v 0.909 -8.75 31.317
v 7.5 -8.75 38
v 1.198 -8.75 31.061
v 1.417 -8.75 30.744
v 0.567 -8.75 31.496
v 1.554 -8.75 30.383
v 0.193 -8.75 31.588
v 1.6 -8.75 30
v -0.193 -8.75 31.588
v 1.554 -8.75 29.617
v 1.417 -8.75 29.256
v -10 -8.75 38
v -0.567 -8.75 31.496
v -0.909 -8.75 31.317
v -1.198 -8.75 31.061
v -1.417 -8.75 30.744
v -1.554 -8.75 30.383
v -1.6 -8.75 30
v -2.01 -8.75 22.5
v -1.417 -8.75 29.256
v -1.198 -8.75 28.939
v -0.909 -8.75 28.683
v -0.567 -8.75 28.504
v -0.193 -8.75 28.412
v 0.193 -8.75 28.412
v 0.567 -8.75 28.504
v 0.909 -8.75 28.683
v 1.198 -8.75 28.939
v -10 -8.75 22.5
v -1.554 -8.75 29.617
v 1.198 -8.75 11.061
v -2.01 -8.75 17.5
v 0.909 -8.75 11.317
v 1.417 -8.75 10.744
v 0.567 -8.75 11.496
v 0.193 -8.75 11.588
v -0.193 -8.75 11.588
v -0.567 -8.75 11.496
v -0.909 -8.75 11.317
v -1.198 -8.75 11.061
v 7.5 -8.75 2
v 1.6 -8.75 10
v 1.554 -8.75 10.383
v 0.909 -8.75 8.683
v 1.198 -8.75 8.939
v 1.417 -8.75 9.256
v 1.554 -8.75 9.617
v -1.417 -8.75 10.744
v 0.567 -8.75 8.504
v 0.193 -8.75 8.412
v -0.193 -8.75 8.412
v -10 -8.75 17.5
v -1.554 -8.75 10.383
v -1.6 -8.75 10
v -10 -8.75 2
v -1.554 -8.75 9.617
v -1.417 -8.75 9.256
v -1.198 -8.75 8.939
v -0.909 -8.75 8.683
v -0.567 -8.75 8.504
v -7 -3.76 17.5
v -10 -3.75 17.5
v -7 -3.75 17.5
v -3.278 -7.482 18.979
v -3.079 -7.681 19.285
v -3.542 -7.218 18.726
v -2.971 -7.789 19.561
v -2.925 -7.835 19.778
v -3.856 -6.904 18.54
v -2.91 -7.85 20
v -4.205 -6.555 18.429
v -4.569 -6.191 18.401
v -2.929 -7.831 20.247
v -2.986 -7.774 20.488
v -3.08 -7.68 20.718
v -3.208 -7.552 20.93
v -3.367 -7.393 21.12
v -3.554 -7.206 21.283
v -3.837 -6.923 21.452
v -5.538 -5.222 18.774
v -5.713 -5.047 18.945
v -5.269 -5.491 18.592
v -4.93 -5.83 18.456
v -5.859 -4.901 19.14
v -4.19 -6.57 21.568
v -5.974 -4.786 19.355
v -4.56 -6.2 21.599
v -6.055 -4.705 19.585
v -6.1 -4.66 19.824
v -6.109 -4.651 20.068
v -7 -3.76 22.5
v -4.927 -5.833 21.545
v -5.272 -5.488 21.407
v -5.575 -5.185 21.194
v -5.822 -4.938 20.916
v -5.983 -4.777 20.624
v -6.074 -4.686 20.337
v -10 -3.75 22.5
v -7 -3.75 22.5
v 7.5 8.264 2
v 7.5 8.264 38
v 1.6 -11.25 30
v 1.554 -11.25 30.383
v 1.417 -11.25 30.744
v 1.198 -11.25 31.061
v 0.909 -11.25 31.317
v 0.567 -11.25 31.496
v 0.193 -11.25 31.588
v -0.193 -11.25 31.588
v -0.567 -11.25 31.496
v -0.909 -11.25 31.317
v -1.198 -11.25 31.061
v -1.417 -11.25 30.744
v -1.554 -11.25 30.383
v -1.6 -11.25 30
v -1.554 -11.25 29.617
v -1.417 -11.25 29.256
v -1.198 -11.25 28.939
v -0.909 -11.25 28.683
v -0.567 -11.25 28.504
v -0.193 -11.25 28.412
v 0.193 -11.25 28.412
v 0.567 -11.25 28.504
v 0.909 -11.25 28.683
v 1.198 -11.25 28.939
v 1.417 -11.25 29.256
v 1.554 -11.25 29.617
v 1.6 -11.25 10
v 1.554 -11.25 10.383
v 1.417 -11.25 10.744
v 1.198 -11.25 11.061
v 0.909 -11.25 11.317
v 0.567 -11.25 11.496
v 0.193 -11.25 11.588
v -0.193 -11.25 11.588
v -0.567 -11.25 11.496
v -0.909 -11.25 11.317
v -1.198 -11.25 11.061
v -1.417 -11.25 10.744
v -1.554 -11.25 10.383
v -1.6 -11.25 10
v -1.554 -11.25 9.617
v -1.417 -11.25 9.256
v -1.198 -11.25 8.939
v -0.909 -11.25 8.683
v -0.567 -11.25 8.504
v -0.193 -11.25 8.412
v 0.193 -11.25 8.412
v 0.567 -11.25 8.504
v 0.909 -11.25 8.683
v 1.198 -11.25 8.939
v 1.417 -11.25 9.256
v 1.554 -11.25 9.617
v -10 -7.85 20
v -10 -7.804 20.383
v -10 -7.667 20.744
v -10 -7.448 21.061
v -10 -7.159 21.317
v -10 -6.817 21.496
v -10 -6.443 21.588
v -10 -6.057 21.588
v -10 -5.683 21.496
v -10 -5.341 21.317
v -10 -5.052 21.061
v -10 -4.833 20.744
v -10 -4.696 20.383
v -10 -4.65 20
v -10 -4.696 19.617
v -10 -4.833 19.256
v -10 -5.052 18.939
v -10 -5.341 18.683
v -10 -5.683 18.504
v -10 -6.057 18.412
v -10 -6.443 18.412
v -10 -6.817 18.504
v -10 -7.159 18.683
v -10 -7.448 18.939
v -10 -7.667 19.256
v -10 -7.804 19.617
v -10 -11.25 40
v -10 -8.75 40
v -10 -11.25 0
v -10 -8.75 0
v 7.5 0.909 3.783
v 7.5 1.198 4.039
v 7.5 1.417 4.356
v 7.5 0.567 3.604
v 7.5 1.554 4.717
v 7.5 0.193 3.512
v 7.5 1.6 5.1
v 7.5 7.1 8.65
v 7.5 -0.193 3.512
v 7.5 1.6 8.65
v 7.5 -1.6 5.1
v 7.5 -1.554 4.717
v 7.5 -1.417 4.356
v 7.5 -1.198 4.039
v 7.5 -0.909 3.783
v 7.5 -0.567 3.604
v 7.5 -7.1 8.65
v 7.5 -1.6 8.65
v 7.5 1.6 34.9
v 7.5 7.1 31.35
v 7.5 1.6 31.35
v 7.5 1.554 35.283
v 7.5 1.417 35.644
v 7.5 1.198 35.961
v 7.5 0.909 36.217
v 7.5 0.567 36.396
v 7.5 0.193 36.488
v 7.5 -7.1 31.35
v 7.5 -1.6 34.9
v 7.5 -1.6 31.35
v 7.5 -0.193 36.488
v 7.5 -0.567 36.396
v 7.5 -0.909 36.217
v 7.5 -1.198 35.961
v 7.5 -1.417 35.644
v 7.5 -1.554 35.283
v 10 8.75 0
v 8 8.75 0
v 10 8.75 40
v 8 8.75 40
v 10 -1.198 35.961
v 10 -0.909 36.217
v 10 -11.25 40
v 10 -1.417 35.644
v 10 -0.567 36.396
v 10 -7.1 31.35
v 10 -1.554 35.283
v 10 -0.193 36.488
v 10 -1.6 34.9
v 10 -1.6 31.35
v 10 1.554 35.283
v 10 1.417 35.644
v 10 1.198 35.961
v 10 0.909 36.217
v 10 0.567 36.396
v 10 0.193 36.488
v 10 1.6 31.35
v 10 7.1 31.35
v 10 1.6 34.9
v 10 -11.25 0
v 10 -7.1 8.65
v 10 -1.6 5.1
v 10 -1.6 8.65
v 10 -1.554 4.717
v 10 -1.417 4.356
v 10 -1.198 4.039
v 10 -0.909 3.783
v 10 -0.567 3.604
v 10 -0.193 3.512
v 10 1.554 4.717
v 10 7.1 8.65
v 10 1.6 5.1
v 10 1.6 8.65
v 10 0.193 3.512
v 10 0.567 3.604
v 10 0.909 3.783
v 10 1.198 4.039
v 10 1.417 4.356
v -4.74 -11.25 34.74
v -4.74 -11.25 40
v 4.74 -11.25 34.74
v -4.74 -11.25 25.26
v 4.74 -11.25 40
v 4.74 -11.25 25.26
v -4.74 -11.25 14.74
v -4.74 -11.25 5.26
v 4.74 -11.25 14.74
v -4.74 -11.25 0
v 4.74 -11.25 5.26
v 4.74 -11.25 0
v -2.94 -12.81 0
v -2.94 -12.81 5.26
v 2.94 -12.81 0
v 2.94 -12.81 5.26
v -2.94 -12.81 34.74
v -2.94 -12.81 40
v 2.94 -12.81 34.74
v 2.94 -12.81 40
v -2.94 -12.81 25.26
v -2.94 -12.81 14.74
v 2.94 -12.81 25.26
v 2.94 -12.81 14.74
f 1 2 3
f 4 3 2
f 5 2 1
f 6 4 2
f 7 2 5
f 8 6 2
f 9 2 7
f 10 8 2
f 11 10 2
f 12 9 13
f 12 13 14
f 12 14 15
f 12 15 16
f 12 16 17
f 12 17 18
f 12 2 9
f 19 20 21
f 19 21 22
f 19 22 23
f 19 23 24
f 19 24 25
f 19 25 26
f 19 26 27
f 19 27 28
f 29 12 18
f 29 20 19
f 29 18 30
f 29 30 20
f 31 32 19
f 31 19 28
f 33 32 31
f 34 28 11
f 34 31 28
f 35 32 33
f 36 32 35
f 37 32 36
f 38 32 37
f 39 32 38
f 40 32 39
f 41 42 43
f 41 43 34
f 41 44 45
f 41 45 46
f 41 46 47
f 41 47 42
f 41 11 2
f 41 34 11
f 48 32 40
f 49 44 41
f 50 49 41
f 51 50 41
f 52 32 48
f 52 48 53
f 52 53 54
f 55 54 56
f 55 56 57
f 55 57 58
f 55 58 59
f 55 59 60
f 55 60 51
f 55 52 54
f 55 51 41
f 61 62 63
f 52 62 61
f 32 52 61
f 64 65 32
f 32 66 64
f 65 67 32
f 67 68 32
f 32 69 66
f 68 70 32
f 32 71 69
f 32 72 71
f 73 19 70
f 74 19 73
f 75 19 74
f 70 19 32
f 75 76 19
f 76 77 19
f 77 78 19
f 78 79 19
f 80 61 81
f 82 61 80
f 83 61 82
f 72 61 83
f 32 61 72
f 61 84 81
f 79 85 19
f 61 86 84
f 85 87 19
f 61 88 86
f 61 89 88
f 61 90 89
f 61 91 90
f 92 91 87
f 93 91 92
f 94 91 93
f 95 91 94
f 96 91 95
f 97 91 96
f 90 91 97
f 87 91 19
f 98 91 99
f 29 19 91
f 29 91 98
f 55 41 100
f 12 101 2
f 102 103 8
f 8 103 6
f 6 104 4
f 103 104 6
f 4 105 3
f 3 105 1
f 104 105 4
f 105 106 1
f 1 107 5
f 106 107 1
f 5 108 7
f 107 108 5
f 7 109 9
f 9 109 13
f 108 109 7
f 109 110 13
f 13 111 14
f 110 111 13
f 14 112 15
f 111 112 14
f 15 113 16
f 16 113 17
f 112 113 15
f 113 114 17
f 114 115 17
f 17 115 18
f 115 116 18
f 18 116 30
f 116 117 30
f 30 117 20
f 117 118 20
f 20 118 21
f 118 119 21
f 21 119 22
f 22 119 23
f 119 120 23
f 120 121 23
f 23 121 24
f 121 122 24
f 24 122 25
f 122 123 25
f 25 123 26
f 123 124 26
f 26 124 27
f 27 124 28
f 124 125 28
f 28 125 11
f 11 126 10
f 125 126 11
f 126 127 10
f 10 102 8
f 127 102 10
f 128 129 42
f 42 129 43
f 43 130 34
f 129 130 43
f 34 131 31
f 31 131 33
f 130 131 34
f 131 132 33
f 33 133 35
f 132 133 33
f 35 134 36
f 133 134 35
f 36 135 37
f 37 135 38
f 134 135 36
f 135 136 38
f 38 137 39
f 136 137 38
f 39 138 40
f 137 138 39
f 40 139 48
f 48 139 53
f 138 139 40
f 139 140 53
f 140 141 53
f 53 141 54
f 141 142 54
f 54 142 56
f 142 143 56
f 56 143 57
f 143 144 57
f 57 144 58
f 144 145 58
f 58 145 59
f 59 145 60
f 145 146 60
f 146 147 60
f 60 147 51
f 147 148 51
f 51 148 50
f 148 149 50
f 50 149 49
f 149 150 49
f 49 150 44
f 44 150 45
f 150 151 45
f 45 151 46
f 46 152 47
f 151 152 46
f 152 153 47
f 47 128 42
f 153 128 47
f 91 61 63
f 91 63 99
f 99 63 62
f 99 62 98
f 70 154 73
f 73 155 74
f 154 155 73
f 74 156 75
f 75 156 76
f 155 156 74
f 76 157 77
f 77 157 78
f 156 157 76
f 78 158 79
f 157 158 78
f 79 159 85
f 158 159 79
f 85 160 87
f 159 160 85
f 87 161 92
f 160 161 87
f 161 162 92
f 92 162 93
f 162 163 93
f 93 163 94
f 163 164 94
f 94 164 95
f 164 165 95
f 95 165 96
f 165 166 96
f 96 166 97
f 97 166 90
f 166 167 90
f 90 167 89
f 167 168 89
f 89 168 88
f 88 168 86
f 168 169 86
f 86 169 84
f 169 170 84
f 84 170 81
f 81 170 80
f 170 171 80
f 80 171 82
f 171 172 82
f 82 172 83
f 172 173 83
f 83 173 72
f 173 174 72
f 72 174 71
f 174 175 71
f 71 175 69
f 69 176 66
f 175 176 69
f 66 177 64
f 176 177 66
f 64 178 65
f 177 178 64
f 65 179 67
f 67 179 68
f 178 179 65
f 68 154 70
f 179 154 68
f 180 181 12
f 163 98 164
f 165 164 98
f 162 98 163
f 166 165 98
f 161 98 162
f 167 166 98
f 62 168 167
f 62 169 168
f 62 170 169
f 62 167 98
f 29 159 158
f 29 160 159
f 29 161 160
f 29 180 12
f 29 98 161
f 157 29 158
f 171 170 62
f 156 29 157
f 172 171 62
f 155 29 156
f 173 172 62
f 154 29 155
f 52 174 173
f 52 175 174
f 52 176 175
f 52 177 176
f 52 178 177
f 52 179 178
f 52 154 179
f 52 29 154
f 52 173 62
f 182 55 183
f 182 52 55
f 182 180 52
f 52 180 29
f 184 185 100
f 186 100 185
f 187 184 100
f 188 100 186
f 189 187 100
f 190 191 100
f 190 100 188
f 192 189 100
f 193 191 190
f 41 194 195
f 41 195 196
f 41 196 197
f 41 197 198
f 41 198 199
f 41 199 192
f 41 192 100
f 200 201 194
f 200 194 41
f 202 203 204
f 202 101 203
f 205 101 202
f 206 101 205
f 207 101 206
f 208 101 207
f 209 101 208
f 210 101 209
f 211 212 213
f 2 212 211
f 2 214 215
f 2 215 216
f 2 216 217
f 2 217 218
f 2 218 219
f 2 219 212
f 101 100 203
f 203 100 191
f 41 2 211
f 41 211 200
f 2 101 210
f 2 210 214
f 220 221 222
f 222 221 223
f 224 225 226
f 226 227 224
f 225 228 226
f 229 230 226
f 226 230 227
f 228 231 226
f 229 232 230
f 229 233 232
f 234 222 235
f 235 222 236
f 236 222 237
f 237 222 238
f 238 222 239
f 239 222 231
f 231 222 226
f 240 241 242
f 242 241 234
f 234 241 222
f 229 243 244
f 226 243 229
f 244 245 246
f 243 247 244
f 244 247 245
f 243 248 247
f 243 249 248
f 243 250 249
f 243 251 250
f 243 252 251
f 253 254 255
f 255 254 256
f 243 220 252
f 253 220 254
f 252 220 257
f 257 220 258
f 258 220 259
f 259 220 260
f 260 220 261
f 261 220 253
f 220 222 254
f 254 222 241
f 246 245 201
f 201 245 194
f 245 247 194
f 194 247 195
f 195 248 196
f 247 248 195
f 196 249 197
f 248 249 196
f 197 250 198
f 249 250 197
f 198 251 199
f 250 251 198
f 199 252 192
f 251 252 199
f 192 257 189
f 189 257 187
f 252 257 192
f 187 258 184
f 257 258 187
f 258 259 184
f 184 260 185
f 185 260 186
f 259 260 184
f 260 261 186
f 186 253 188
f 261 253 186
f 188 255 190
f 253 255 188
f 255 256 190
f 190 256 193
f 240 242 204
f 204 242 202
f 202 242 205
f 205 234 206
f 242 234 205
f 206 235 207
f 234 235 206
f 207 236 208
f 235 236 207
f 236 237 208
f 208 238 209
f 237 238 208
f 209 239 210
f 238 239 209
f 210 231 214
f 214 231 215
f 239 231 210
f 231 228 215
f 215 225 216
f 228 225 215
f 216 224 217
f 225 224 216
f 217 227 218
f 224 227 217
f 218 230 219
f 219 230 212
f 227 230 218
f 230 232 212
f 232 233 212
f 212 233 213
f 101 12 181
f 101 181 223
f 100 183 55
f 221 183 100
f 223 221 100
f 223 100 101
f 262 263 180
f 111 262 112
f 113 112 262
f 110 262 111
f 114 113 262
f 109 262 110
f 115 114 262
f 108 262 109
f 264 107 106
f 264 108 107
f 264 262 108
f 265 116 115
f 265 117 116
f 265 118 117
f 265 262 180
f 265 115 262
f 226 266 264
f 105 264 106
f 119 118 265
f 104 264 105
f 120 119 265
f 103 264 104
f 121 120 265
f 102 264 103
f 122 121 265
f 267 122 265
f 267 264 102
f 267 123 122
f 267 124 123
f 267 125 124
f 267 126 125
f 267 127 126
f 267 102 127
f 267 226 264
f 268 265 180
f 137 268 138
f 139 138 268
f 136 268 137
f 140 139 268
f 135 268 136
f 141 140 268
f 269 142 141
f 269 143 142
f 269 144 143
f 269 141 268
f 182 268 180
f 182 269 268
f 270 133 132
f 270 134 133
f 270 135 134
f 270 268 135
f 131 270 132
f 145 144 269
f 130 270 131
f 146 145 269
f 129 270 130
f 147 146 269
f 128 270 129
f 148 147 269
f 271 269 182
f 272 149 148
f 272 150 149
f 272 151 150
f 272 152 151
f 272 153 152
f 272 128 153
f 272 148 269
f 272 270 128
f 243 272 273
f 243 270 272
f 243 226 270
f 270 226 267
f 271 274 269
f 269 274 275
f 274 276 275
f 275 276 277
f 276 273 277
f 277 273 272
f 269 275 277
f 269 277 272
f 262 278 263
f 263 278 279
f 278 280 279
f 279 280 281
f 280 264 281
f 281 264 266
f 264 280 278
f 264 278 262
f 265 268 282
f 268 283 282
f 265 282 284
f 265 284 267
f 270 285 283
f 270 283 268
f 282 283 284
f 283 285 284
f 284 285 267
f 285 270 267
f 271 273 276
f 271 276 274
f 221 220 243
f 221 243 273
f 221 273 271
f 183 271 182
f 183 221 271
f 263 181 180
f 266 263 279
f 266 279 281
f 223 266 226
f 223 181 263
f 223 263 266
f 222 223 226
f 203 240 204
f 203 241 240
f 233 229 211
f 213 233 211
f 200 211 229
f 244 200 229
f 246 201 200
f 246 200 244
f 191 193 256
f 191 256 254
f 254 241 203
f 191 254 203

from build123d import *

# Parameters (mm, degrees)
PAD_DEPTH            = 40
PAD001_DEPTH         = 40
SKETCH002_W          = 17.5
SKETCH002_H          = 36
POCKET_DEPTH         = 18
SKETCH003_W          = 14.2
SKETCH003_H          = 22.7
POCKET001_DEPTH      = 2.001
SKETCH004_R          = 1.6
POCKET002_DEPTH      = 21.561
SKETCH005_W          = 9.48
SKETCH005_H          = 9.48
POCKET003_DEPTH      = 1.56
POCKET003_FACE12_W   = 17.5
POCKET003_FACE12_H   = 36
POCKET003_FACE12_W_2 = 14.2
POCKET003_FACE12_H_2 = 22.7
PAD002_DEPTH         = 0.5
POCKET004_DEPTH      = 38.001
POCKET005_DEPTH      = 2.5
SKETCH007_W          = 3
SKETCH007_H          = 5
PAD003_DEPTH         = 5
CHAMFER_SIZE         = 4.99
SKETCH008_R          = 1.6
POCKET006_DEPTH      = 17.5


with BuildPart() as part:
    # Sketch → Pad (new body)
    with BuildSketch(Plane.XY):
        Polygon((-10, -8.75), (-10, -11.25), (-4.74, -11.25), (-2.94, -12.81), (2.94, -12.81), (4.74, -11.25), (10, -11.25), (10, 8.75), (8, 8.75), (8, -8.75), align=None)
    extrude(amount=PAD_DEPTH)

    # Sketch001 (on Face11 of Pad) → Pad001 (join)
    with BuildSketch(Plane(origin=(0, 0, 0), x_dir=(1, 0, 0), z_dir=(0, 0, -1))):
        Polygon((-10, 8.75), (8, -8.75), (8, 8.75), align=None)
    extrude(amount=-PAD001_DEPTH)

    # Sketch002 (on Face1 of Pad001) → Pocket (cut)
    with BuildSketch(Plane(origin=(-10, 0, 0), x_dir=(0, -1, 0), z_dir=(-1, 0, 0))):
        with Locations((0, 20)):
            Rectangle(SKETCH002_W, SKETCH002_H)
    extrude(amount=-POCKET_DEPTH, mode=Mode.SUBTRACT)

    # Sketch003 (on Face12 of Pocket) → Pocket001 (cut, through all)
    with BuildSketch(Plane(origin=(8, 0, 0), x_dir=(0, -1, 0), z_dir=(-1, 0, 0))):
        with Locations((0, 20)):
            Rectangle(SKETCH003_W, SKETCH003_H)
    extrude(amount=-POCKET001_DEPTH, mode=Mode.SUBTRACT)

    # Sketch004 (on Face15 of Pocket001) → Pocket002 (cut, through all)
    with BuildSketch(Plane.XZ.offset(12.81)):
        with Locations((0, 30)):
            Circle(SKETCH004_R)
        with Locations((0, 10)):
            Circle(SKETCH004_R)
    extrude(amount=-POCKET002_DEPTH, mode=Mode.SUBTRACT)

    # Sketch005 (on Face17 of Pocket002) → Pocket003 (cut)
    with BuildSketch(Plane.XZ.offset(12.81)):
        with Locations((0, 30)):
            Rectangle(SKETCH005_W, SKETCH005_H)
        with Locations((0, 10)):
            Rectangle(SKETCH005_W, SKETCH005_H)
    extrude(amount=-POCKET003_DEPTH, mode=Mode.SUBTRACT)

    # Pocket003 Face12 → Pad002 (add)
    with BuildSketch(Plane(origin=(8, 0, 20), x_dir=(0, 1, 0), z_dir=(-1, 0, 0))):
        Rectangle(POCKET003_FACE12_W, POCKET003_FACE12_H)
        Rectangle(POCKET003_FACE12_W_2, POCKET003_FACE12_H_2, mode=Mode.SUBTRACT)
    extrude(amount=PAD002_DEPTH)

    # Pad002 Face11 → Pocket004 (cut, through all)
    with BuildSketch(Plane(origin=(7.666667, 8.587963, 2), x_dir=(0, -1, 0), z_dir=(0, 0, -1))):
        Polygon((-0.162037, -0.333333), (0.324074, 0.166667), (-0.162037, 0.166667), align=None)
    extrude(amount=-POCKET004_DEPTH, mode=Mode.SUBTRACT)

    # Sketch006 (on Face26 of Pocket004) → Pocket005 (cut)
    with BuildSketch(Plane.YZ.offset(10)):
        with BuildLine():
            ThreePointArc((1.6, 34.9), (0, 36.5), (-1.6, 34.9))
            Line((-1.6, 34.9), (-1.6, 5.1))
            ThreePointArc((-1.6, 5.1), (0, 3.5), (1.6, 5.1))
            Line((1.6, 5.1), (1.6, 34.9))
        make_face()
    extrude(amount=-POCKET005_DEPTH, mode=Mode.SUBTRACT)

    # Sketch007 (on Face3 of Pocket005) → Pad003 (join)
    with BuildSketch(Plane(origin=(0, -8.75, 0), x_dir=(-1, 0, 0), z_dir=(0, 1, 0))):
        with Locations((8.5, 20)):
            Rectangle(SKETCH007_W, SKETCH007_H)
    extrude(amount=PAD003_DEPTH)

    # Chamfer
    chamfer_edges = [part.edges().sort_by_distance(p)[0] for p in [
        (-7, -8.75, 20),
    ]]
    chamfer(chamfer_edges, length=CHAMFER_SIZE)

    # Sketch008 (on Face13 of Chamfer) → Pocket006 (cut)
    with BuildSketch(Plane(origin=(-10, 0, 0), x_dir=(0, -1, 0), z_dir=(-1, 0, 0))):
        with Locations((6.25, 20)):
            Circle(SKETCH008_R)
    extrude(amount=-POCKET006_DEPTH, mode=Mode.SUBTRACT)


solid = part.part
